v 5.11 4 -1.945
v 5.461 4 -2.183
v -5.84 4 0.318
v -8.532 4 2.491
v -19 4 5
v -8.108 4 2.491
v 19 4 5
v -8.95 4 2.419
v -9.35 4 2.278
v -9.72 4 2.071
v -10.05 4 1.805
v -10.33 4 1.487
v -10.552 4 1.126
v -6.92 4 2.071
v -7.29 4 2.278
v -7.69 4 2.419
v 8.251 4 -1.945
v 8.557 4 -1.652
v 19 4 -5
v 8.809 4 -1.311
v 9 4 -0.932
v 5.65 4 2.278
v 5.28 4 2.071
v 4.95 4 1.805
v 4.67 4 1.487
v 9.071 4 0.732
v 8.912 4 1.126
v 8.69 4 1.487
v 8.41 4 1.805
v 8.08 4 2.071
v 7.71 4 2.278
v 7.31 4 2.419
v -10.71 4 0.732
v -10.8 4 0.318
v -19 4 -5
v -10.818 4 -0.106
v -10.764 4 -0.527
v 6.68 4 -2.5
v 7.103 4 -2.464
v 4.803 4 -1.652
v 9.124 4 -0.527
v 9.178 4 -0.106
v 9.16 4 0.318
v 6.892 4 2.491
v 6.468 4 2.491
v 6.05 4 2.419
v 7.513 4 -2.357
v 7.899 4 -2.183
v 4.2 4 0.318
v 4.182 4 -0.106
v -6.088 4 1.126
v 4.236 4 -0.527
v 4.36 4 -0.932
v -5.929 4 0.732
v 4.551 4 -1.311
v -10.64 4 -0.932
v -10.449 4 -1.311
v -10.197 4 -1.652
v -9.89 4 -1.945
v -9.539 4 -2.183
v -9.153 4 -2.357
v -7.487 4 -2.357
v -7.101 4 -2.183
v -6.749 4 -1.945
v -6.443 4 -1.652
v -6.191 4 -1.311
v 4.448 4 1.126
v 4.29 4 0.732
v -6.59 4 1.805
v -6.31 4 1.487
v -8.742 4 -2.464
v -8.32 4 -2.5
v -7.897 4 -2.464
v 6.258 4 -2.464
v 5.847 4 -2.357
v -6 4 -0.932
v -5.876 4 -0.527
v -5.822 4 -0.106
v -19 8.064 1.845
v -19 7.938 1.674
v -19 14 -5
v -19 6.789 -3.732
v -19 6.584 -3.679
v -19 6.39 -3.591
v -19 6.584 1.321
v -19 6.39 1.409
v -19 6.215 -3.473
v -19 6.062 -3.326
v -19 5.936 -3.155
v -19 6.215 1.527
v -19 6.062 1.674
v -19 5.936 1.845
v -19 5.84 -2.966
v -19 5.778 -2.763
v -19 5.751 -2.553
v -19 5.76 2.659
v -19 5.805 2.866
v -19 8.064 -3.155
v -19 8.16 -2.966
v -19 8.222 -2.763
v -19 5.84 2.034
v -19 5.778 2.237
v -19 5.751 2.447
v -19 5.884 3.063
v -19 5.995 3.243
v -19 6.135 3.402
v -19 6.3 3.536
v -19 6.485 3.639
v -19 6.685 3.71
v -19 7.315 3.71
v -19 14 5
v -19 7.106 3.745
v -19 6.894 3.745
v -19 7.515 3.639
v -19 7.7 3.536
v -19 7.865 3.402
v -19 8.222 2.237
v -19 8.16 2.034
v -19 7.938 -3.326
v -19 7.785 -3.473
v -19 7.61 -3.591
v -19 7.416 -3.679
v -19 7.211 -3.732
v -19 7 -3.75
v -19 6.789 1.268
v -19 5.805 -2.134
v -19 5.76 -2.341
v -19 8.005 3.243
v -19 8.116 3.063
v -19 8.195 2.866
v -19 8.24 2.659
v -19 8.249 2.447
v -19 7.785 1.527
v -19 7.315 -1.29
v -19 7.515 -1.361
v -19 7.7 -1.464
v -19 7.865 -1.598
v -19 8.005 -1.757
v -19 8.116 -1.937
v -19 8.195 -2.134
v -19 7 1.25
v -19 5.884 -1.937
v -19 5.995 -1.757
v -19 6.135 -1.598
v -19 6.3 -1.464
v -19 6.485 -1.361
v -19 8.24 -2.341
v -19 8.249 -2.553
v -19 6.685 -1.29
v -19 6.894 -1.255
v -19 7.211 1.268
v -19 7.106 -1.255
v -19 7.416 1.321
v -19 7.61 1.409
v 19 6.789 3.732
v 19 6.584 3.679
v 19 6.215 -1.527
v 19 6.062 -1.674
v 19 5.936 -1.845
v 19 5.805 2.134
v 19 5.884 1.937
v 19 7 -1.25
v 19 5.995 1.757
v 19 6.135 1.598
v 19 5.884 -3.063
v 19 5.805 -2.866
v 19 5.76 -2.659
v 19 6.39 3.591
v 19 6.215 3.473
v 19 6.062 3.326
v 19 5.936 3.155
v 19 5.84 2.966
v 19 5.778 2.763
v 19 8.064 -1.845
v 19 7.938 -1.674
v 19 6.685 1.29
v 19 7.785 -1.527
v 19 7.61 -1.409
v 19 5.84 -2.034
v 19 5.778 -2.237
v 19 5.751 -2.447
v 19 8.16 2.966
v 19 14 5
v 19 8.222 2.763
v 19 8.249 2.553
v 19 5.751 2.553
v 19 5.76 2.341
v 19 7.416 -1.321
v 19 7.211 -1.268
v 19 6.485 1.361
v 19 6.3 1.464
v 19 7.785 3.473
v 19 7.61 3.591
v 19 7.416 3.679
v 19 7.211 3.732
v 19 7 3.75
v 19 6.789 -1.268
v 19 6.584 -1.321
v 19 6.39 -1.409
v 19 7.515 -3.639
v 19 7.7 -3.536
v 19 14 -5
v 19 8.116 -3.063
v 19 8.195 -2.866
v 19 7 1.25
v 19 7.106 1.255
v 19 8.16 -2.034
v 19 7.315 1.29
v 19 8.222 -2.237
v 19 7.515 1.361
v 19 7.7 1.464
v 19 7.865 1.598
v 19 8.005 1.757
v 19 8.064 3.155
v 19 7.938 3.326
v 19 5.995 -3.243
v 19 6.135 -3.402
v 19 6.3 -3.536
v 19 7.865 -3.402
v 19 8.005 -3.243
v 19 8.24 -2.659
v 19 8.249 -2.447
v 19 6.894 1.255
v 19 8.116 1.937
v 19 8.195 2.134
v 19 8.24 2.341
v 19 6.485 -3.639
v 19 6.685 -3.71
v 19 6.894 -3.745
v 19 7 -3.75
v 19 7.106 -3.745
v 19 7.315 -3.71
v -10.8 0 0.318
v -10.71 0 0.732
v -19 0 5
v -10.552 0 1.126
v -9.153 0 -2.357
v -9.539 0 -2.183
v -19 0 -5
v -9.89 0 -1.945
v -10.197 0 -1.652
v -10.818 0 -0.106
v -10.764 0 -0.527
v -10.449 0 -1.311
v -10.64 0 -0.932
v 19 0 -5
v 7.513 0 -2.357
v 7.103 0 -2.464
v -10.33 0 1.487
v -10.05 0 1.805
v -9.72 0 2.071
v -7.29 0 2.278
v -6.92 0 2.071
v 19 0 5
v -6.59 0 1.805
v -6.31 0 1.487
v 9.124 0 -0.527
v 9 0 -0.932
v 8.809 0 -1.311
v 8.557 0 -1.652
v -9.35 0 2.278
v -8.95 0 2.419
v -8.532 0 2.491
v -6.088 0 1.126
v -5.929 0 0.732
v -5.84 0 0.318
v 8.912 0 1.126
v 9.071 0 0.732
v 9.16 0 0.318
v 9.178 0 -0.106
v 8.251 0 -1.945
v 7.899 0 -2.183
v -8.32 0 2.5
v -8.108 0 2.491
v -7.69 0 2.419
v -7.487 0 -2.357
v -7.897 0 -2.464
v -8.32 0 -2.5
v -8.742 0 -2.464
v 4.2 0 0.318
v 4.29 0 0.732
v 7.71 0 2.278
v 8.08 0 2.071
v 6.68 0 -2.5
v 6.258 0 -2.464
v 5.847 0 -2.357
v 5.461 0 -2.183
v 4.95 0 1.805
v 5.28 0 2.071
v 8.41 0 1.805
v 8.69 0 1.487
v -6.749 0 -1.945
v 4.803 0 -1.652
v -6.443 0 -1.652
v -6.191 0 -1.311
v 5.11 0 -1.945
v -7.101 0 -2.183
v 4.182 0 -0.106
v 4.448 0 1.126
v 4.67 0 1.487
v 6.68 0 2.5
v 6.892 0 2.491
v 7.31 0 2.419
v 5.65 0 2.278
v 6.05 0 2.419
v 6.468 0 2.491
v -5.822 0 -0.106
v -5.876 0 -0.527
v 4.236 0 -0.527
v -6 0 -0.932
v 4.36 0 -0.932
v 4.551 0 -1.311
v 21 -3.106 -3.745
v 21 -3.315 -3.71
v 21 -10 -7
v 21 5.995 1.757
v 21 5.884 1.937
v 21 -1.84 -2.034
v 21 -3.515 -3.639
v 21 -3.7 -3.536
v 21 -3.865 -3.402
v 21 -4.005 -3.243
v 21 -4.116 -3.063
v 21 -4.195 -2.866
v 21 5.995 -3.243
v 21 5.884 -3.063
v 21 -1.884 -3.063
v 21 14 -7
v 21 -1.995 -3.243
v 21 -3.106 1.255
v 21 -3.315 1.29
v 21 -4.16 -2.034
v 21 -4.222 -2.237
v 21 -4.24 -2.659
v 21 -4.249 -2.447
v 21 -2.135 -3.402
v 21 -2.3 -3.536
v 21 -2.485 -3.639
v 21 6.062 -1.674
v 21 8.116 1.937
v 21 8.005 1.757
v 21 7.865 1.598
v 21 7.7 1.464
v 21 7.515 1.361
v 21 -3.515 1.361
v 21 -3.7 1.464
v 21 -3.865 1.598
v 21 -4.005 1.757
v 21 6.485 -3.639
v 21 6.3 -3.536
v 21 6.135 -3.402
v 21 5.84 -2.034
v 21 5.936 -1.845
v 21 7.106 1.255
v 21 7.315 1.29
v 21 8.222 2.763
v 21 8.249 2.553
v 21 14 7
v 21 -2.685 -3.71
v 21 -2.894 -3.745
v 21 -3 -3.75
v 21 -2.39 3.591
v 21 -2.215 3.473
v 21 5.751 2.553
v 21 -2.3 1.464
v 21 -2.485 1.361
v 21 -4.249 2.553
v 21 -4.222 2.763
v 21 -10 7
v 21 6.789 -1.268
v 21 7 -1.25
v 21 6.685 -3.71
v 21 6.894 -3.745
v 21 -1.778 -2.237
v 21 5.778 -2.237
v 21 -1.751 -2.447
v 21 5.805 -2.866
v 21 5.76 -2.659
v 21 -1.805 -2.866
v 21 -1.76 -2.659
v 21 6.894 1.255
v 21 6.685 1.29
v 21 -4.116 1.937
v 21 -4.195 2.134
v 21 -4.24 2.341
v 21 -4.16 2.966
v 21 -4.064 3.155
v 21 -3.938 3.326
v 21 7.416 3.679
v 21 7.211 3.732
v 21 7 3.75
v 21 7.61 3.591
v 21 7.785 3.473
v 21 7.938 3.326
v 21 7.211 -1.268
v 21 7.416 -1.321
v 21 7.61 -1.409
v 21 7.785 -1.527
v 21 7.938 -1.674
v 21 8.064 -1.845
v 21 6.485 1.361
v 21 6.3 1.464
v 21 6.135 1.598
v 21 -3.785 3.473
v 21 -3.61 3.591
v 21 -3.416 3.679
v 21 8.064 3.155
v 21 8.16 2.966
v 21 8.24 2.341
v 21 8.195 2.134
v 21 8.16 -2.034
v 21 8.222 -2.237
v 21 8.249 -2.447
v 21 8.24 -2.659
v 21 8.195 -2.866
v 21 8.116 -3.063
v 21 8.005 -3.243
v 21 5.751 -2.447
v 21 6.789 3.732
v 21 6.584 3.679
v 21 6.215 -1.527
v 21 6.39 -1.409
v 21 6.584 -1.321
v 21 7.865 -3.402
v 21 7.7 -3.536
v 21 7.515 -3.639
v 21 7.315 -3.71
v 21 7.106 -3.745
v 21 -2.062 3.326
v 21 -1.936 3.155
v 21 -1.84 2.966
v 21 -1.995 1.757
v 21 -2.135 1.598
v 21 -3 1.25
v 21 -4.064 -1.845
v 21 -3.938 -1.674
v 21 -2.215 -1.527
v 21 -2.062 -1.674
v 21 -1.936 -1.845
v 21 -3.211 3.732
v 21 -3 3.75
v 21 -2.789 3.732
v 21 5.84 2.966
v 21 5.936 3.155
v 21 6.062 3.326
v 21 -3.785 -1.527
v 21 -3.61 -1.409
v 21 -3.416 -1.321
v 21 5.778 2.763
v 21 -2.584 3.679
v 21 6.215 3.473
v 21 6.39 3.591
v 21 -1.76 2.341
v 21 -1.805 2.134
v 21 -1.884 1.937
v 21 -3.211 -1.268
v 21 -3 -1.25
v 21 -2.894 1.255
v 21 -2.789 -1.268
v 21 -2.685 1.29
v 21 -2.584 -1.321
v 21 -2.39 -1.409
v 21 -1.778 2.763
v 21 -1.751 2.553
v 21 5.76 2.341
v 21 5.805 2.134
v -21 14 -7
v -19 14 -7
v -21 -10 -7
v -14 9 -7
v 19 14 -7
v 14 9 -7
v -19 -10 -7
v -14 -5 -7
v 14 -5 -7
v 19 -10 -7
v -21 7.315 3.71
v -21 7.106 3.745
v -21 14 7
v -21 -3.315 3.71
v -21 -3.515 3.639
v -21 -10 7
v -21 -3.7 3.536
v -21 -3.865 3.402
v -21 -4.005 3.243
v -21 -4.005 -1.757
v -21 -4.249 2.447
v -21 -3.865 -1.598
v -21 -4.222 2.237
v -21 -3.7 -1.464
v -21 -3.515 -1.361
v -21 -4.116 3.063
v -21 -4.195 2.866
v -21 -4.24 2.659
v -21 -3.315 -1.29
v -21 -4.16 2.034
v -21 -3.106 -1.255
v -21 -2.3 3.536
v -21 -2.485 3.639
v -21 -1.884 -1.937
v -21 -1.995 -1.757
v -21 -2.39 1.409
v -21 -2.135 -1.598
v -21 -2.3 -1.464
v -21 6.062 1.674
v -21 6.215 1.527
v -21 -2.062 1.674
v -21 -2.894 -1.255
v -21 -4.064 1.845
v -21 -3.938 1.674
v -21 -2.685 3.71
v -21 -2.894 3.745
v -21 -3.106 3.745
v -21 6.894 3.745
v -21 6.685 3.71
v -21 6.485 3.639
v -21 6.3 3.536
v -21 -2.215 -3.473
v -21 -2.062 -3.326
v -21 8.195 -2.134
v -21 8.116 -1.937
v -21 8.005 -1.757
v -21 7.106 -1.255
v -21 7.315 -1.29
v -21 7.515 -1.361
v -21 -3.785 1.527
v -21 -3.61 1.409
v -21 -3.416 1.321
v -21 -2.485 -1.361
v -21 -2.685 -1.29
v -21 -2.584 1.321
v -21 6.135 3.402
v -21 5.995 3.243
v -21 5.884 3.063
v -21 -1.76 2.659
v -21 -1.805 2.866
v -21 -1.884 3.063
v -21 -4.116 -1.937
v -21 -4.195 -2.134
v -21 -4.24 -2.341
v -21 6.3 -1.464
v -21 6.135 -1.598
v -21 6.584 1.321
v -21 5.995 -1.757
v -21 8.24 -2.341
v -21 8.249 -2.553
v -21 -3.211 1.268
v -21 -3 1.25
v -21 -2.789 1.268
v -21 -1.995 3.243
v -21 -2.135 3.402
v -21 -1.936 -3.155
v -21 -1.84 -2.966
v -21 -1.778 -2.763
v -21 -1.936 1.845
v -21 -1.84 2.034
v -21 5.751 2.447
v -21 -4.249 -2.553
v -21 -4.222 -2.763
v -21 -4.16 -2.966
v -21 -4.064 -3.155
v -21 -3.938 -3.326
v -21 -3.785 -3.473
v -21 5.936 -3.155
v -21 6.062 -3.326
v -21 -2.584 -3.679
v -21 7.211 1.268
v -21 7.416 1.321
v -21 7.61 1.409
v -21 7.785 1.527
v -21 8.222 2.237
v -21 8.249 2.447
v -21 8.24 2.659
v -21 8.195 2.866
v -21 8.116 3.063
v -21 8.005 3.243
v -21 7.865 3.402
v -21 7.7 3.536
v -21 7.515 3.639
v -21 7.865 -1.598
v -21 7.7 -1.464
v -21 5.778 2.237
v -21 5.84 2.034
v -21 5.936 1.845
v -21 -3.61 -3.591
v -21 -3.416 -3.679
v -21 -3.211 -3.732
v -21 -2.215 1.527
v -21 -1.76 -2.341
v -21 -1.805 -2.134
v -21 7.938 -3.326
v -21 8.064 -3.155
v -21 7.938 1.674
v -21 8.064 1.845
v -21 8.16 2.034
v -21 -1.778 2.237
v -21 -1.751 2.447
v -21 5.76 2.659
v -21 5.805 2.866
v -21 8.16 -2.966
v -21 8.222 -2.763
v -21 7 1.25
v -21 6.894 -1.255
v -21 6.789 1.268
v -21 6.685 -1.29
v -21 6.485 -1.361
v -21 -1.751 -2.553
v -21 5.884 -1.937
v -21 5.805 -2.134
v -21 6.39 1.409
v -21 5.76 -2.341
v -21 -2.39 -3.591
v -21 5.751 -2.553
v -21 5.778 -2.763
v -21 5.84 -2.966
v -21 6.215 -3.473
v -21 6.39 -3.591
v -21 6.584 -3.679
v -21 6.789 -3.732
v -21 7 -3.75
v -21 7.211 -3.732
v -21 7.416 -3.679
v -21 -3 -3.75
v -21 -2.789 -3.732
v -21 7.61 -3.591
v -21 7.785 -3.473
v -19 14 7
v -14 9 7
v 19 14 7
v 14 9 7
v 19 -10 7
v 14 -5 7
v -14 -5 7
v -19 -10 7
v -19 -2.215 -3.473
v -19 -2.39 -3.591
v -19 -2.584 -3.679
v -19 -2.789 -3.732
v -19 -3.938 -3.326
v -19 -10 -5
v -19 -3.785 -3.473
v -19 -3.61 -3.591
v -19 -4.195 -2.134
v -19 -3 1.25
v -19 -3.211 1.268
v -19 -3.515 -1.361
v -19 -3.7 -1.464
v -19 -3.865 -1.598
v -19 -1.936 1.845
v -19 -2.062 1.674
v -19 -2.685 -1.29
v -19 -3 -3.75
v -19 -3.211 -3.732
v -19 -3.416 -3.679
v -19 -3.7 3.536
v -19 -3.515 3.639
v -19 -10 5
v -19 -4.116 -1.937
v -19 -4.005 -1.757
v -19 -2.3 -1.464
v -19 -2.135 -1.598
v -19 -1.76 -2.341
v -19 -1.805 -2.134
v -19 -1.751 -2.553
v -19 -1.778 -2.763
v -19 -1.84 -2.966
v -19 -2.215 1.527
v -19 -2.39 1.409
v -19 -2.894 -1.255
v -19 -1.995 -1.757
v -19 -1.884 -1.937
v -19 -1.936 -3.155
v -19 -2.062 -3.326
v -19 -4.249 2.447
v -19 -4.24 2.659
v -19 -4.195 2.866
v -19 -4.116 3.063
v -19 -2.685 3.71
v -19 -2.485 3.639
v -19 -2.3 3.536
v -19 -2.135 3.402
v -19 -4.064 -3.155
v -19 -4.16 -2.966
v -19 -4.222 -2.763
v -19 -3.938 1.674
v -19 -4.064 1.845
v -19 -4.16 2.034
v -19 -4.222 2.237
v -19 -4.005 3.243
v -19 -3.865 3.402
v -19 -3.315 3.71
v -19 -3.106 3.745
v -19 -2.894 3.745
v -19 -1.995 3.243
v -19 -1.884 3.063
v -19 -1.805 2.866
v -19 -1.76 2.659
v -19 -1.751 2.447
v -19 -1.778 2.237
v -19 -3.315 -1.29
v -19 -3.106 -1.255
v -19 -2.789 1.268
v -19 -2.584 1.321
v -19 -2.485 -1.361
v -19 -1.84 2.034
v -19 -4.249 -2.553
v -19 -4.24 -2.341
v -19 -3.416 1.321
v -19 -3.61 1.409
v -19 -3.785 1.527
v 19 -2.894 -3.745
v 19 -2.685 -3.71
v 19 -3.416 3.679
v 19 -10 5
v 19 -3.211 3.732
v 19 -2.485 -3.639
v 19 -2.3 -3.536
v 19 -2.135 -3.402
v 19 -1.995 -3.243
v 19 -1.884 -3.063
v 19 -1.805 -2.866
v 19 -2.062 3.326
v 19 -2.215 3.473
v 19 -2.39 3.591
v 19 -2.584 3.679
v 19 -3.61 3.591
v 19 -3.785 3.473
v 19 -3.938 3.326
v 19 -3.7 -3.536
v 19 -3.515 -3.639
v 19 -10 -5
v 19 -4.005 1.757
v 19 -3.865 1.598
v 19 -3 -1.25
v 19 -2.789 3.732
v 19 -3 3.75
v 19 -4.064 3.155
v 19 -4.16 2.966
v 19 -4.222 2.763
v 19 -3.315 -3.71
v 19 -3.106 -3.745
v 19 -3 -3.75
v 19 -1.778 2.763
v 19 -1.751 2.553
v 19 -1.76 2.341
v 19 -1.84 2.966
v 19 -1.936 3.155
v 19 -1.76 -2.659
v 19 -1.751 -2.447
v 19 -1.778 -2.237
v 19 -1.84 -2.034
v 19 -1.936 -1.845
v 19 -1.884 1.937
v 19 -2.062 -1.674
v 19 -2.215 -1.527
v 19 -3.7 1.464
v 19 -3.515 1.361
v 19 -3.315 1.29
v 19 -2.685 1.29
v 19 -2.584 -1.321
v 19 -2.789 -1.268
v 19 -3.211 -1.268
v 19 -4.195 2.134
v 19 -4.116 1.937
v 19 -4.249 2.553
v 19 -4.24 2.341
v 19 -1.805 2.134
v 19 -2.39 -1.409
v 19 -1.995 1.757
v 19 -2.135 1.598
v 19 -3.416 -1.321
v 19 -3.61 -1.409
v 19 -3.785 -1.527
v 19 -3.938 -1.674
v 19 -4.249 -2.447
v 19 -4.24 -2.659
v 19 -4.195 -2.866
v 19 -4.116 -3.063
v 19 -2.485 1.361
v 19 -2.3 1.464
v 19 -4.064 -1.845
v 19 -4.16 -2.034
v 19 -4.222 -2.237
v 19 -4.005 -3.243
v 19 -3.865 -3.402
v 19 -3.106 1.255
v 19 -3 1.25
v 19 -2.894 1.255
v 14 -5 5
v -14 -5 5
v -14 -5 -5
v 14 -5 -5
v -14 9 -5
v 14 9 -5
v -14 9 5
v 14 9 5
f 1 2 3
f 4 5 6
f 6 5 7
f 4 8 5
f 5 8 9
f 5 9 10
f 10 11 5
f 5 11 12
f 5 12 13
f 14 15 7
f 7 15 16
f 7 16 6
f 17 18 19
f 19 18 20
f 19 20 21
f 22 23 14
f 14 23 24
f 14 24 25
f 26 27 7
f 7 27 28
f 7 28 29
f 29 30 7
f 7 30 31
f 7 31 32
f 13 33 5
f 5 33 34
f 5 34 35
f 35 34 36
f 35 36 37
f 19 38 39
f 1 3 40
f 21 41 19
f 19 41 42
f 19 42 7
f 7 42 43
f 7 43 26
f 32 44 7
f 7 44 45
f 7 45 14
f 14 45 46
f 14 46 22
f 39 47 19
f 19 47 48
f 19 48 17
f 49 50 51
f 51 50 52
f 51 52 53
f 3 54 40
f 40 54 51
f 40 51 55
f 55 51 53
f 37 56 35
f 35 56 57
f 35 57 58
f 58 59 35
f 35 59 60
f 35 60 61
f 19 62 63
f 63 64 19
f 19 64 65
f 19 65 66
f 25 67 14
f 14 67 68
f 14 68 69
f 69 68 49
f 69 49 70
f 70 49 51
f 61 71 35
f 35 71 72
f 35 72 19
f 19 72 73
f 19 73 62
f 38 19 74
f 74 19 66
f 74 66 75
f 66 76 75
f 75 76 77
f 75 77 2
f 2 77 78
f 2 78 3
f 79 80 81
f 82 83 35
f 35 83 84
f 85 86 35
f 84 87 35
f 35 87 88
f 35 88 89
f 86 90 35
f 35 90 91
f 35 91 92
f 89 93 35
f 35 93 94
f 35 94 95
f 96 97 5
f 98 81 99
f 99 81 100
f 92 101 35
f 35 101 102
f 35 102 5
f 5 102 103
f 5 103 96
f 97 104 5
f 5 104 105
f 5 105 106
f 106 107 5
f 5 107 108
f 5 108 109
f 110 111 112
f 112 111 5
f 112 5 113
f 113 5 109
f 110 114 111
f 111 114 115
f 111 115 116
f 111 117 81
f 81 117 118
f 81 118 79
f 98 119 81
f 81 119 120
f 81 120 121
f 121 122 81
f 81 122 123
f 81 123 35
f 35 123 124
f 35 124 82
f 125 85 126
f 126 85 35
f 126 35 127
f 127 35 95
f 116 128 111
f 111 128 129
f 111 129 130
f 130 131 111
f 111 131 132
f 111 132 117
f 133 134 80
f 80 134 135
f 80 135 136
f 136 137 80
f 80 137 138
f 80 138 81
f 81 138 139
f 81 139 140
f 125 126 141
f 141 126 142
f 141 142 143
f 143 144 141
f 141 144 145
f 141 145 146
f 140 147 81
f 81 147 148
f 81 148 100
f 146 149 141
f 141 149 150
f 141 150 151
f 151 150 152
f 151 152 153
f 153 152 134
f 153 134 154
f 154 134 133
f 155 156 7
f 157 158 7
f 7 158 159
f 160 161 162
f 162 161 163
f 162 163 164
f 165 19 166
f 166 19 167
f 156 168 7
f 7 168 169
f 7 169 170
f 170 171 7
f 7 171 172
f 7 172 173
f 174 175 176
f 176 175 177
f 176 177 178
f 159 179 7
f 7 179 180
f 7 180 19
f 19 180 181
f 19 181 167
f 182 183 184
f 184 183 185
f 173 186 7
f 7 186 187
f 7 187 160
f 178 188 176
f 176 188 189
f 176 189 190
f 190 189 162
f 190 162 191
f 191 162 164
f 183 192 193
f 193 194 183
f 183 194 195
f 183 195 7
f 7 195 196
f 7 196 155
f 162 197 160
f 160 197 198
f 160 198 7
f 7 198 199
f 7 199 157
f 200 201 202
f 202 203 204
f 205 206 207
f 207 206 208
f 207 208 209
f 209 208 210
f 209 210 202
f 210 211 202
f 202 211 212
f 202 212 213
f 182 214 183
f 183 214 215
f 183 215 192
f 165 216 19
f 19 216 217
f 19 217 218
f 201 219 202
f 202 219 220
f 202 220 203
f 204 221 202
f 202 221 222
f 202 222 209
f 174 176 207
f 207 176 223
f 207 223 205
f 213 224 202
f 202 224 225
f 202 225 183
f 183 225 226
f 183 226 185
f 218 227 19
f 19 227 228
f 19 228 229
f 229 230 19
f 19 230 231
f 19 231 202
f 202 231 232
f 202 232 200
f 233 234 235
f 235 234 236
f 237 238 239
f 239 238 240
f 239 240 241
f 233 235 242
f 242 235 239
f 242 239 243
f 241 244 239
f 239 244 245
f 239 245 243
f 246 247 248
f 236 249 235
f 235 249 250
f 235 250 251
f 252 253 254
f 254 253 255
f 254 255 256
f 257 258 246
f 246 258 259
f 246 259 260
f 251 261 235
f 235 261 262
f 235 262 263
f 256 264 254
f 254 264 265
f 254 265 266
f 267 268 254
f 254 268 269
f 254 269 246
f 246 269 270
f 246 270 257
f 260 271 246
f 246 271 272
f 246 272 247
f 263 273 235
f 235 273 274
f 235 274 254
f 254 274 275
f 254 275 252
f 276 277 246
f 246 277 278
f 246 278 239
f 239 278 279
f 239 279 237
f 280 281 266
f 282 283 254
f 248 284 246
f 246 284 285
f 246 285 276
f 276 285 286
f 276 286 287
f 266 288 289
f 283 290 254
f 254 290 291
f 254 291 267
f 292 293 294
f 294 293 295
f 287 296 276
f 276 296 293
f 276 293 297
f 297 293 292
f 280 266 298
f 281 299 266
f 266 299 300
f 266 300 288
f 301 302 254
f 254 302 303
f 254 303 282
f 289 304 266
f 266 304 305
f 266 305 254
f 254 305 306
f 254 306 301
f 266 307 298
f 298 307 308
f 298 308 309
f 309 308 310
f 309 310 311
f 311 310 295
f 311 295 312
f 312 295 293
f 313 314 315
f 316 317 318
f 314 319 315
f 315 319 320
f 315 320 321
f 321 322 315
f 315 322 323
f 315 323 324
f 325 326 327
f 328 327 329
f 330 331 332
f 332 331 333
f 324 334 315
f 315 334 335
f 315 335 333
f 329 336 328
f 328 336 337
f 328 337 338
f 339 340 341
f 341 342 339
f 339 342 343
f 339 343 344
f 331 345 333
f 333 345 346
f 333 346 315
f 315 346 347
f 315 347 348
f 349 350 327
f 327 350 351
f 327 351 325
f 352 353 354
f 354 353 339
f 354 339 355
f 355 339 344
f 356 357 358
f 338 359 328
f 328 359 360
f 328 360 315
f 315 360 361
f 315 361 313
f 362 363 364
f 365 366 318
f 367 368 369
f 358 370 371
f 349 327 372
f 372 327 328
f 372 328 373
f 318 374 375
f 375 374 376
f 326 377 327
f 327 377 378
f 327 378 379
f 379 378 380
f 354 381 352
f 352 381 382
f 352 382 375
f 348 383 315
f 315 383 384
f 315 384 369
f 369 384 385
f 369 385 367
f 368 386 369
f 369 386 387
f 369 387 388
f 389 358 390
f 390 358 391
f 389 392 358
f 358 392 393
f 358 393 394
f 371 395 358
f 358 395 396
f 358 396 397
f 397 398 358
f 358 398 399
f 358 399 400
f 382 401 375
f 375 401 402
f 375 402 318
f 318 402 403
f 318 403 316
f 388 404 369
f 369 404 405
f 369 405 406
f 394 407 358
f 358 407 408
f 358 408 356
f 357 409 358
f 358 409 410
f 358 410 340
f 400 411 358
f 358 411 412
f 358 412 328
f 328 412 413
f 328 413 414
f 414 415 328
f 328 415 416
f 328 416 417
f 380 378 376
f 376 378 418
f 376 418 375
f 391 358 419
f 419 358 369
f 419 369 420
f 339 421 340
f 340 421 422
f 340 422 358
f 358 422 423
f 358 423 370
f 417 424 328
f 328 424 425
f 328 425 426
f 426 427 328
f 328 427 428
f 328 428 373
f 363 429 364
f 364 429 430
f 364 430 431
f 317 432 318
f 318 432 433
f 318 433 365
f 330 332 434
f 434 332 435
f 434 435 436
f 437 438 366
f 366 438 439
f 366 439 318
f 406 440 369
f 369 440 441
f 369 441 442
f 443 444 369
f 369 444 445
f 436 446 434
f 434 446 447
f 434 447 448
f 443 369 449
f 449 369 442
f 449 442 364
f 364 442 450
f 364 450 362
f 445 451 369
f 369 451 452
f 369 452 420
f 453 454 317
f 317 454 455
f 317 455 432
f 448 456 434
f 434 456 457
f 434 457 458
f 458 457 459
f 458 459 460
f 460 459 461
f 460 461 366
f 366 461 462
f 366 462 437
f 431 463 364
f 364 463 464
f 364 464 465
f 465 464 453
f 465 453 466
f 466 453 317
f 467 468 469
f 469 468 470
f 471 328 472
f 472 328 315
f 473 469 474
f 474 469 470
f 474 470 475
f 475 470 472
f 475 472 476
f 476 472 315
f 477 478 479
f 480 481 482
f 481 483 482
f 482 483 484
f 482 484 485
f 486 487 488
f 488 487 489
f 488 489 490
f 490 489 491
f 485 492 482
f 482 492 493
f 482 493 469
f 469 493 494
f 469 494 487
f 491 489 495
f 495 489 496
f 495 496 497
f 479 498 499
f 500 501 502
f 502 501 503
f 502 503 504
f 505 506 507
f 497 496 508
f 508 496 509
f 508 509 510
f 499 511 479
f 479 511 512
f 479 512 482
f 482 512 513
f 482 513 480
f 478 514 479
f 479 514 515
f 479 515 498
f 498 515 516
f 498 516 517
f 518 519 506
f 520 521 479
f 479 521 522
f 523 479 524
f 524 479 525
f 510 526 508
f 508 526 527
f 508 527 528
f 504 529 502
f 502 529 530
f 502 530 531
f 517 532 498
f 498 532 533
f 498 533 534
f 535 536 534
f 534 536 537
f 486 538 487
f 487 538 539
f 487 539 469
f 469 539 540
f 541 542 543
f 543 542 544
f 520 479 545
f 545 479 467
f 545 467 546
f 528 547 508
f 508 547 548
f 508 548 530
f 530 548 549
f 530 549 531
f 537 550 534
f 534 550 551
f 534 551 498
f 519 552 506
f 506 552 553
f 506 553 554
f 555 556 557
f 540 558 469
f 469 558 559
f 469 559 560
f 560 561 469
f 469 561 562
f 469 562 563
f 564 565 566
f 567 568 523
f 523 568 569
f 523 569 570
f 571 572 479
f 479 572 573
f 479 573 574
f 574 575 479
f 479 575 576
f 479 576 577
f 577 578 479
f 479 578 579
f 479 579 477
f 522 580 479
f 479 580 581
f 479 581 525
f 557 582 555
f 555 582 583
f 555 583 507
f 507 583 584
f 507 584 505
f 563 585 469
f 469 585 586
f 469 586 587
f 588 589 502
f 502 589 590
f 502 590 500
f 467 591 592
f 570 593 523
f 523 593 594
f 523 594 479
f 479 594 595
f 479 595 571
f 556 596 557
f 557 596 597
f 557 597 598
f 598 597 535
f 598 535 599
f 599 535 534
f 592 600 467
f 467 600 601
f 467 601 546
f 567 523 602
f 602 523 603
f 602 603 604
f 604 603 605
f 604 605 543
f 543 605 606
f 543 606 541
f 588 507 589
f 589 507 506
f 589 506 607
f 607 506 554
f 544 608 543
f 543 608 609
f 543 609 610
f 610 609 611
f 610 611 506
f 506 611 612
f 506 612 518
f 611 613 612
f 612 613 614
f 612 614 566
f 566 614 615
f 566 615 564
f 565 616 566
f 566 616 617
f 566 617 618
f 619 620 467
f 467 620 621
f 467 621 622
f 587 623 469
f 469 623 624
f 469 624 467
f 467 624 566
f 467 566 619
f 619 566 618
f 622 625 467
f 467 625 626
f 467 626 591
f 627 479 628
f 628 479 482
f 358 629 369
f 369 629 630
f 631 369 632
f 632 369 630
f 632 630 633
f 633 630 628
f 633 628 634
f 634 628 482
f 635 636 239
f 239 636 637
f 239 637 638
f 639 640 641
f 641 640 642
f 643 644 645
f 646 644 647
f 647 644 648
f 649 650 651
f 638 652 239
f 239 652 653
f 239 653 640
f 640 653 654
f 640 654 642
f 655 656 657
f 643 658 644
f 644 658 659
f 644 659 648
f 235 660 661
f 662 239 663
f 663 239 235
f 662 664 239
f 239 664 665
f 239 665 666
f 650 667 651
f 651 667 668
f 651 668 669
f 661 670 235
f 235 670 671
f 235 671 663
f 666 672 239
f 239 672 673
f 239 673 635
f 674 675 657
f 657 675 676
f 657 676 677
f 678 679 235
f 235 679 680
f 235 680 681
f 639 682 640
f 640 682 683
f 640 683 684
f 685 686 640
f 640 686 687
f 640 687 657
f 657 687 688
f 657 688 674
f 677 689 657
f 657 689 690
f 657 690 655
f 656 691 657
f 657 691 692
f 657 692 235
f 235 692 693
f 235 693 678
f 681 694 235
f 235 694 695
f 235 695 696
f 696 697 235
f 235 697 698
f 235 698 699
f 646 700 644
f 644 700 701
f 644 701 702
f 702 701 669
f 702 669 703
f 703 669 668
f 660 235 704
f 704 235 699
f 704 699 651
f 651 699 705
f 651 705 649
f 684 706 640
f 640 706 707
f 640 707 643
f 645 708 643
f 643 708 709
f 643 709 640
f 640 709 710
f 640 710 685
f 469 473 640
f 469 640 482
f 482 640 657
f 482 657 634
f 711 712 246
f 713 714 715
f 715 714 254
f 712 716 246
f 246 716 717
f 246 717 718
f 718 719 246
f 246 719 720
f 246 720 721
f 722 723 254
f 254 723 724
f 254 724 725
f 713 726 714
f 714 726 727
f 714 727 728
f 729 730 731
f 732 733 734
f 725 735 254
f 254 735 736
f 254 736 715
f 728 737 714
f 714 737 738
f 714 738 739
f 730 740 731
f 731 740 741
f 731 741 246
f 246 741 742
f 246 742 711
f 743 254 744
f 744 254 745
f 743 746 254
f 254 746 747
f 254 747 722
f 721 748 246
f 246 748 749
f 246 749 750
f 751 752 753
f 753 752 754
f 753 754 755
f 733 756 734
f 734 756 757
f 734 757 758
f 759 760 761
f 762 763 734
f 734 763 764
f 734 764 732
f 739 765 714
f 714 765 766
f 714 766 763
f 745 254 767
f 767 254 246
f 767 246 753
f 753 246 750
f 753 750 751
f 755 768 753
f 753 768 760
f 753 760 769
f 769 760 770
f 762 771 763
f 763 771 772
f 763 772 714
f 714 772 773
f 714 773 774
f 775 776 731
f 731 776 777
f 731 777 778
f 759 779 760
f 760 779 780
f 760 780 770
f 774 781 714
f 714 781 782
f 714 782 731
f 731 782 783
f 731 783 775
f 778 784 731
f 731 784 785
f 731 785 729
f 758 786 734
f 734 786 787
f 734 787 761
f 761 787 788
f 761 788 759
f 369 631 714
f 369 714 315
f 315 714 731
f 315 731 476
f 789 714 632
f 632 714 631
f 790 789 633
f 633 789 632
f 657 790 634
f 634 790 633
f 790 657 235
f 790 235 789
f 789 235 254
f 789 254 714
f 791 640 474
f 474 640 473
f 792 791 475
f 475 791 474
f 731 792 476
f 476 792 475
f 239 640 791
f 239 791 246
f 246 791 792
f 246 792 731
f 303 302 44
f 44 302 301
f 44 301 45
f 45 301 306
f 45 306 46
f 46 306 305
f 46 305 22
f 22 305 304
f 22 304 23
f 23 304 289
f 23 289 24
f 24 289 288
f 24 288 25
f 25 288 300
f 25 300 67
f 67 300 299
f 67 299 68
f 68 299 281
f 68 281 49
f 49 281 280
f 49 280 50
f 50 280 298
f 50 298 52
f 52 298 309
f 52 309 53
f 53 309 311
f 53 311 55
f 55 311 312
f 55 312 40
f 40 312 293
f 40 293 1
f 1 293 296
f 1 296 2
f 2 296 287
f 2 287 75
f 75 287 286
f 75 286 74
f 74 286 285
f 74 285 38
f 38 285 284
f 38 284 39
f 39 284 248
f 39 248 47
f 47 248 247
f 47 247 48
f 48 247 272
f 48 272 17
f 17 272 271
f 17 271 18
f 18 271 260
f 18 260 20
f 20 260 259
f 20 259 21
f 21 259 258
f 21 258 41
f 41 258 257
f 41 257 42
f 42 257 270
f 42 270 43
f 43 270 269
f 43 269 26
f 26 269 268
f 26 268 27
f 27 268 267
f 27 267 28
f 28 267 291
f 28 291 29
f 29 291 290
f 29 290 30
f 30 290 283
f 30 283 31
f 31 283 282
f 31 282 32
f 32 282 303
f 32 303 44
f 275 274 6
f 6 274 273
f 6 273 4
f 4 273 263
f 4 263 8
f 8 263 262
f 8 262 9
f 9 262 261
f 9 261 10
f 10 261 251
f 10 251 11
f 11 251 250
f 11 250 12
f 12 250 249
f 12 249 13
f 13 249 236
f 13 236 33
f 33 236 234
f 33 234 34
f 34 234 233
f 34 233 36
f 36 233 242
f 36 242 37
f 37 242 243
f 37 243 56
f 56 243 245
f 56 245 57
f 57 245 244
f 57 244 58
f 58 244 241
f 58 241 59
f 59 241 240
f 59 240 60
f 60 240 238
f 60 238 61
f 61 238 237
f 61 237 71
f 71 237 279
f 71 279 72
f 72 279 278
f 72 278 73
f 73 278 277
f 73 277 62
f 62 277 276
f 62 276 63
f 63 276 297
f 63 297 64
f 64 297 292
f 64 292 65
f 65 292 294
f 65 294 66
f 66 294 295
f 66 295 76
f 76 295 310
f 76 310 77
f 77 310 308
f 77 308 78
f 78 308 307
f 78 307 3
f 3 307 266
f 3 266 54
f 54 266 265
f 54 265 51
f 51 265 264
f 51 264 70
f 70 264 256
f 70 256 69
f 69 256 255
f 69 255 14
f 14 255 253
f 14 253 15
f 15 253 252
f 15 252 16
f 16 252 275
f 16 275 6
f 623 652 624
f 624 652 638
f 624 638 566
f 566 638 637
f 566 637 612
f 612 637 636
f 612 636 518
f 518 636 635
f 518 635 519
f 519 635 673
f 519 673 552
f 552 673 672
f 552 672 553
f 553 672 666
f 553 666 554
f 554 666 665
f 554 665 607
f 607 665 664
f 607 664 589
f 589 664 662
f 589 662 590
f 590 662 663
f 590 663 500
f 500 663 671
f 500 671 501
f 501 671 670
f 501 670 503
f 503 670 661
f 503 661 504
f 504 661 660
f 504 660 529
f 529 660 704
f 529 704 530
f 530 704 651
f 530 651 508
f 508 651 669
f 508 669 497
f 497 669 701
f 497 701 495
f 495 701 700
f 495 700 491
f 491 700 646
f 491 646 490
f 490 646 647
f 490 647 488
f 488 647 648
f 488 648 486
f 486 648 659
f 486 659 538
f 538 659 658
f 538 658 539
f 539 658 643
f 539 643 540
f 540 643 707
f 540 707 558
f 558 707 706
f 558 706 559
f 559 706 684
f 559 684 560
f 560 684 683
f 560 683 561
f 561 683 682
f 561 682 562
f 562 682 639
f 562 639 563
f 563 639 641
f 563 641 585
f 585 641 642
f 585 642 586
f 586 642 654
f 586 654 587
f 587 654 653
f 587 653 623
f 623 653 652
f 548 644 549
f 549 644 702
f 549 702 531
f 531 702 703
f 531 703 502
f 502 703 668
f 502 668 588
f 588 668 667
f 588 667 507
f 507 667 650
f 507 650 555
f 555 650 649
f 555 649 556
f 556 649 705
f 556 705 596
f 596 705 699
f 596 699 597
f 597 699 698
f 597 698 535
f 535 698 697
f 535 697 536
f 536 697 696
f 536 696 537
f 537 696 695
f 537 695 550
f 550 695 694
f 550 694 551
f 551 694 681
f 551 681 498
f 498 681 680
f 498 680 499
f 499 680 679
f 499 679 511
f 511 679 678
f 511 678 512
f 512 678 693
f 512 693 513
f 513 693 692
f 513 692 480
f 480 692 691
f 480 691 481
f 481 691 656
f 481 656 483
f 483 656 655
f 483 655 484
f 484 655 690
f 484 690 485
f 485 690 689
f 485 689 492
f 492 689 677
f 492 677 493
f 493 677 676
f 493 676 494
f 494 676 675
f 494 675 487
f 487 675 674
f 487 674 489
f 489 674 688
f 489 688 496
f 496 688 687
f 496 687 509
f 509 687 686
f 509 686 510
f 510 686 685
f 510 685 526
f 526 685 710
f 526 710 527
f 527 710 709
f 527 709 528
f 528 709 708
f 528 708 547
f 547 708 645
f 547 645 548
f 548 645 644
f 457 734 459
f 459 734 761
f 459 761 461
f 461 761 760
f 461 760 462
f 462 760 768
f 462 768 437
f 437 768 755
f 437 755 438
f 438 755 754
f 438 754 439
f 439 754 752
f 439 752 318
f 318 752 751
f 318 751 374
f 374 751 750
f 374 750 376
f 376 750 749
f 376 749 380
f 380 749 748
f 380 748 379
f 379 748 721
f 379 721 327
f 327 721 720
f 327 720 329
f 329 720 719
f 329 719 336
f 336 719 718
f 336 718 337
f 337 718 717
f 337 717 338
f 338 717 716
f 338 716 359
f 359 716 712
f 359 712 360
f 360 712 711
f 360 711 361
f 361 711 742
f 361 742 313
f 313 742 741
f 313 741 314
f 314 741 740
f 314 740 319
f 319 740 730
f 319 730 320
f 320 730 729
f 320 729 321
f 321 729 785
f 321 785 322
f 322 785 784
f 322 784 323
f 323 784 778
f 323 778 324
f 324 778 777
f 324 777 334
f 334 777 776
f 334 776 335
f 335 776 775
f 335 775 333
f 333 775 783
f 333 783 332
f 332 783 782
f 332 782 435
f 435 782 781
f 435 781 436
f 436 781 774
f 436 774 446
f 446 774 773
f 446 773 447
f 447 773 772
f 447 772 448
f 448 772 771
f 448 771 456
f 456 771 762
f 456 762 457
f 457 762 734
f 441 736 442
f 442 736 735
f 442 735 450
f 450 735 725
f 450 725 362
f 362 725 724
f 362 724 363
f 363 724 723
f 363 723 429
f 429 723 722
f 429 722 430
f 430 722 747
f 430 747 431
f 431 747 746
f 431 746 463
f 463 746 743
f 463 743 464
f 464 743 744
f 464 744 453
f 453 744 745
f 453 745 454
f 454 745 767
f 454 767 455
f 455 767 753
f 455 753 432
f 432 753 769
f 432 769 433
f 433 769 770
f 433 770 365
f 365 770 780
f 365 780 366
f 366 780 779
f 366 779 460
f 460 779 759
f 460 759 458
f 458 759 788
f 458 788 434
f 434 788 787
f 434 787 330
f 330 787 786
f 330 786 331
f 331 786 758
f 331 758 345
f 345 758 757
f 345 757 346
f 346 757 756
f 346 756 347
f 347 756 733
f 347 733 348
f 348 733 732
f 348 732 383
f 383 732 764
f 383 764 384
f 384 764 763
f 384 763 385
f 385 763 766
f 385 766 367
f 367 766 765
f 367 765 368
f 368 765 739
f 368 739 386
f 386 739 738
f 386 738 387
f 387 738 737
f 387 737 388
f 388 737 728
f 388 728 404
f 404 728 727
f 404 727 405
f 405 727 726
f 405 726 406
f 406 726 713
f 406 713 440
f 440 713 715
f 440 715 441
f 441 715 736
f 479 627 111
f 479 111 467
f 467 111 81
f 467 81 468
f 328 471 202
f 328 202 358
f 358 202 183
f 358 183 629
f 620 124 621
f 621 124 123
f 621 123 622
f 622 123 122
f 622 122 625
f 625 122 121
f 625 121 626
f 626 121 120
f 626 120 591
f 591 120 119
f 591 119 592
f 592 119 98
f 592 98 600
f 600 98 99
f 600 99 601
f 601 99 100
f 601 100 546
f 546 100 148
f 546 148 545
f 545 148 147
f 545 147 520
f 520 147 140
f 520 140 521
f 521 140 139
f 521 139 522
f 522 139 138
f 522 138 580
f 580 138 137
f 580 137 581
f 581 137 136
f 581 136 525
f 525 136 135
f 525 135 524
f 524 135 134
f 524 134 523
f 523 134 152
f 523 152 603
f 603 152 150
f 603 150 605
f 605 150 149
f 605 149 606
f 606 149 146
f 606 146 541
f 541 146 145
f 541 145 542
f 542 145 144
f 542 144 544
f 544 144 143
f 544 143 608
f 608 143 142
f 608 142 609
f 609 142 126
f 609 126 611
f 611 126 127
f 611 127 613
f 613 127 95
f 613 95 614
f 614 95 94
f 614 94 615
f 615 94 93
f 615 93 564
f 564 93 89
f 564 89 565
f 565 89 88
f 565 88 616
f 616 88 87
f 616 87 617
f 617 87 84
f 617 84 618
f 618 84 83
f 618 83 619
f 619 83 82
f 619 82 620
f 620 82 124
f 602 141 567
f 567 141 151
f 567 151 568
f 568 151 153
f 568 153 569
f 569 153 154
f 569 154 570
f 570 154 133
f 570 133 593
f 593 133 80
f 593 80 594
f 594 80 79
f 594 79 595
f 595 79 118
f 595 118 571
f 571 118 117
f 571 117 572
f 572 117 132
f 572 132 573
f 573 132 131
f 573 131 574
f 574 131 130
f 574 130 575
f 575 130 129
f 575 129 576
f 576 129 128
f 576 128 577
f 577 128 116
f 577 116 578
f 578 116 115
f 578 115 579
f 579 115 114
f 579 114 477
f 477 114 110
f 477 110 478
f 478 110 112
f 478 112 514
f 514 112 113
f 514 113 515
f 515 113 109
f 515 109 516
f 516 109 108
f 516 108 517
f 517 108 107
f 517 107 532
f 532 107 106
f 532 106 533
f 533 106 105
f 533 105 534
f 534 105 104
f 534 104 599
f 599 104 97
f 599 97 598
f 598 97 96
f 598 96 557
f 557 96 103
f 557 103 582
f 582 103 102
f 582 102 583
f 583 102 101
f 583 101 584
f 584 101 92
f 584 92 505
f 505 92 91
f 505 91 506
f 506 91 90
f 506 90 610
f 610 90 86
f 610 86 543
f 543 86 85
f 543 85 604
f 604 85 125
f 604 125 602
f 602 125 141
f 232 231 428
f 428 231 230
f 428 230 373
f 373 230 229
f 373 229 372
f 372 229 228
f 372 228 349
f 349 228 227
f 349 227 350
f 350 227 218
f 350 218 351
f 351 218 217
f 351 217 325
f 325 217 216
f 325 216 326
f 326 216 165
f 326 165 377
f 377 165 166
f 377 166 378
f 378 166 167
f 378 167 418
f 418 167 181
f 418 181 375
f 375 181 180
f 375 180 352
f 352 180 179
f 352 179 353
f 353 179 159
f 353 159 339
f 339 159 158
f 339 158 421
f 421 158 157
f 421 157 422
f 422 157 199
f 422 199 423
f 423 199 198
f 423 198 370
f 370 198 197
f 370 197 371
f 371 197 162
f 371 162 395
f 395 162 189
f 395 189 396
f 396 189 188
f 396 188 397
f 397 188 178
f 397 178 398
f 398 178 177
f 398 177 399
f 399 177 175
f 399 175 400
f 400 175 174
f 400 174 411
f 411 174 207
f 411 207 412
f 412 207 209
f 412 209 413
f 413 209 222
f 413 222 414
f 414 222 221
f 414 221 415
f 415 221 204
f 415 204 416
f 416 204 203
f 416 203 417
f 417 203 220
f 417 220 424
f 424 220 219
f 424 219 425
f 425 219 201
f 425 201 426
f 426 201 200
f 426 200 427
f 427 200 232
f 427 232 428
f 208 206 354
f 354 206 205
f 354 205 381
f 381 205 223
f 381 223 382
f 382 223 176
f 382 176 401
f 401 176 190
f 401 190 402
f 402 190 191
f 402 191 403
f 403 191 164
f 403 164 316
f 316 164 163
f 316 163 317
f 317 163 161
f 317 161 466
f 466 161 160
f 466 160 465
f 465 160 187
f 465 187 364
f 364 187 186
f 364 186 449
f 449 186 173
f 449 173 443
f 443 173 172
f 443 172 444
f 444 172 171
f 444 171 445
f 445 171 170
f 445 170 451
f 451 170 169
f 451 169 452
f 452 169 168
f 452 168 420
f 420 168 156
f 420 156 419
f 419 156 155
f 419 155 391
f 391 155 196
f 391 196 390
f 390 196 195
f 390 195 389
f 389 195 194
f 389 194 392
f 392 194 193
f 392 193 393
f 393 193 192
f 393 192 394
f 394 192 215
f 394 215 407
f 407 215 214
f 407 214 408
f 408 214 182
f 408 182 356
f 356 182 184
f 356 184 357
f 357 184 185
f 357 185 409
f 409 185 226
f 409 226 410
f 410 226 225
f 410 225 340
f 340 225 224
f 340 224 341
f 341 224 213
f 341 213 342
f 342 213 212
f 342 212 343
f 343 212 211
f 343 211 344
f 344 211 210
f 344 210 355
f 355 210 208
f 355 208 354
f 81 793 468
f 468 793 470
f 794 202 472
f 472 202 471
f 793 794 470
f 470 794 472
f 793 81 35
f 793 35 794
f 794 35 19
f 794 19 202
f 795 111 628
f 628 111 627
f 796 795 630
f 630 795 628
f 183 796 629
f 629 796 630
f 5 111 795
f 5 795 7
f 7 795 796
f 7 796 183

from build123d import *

# Parameters (mm, degrees)
SKETCH2_W               = 42
SKETCH2_H               = 14
BOSS_EXTRUDE1_DEPTH     = 4
SKETCH3_W               = 2
SKETCH3_H               = 14
BOSS_EXTRUDE2_DEPTH     = 10
BOSS_EXTRUDE3_DEPTH     = 2
SKETCH5_R               = 2.5
CUT_EXTRUDE1_DEPTH      = 11
CUT_EXTRUDE1_DEPTH_BACK = 5
SKETCH6_R               = 1.25
CUT_EXTRUDE2_DEPTH      = 2
SKETCH7_W               = 2
SKETCH7_H               = 14
BOSS_EXTRUDE4_DEPTH     = 10
SKETCH8_R               = 1.25
CUT_EXTRUDE3_DEPTH      = 10
BOSS_EXTRUDE5_DEPTH     = 2


with BuildPart() as part:
    # Sketch2 → Boss-Extrude1 (new body)
    with BuildSketch(Plane(origin=(0, 0, 0), x_dir=(1, 0, 0), z_dir=(0, 1, 0))):
        Rectangle(SKETCH2_W, SKETCH2_H)
    extrude(amount=BOSS_EXTRUDE1_DEPTH)

    # Sketch3 → Boss-Extrude2 (add)
    with BuildSketch(Plane.XZ):
        with Locations((-20, 0)):
            Rectangle(SKETCH3_W, SKETCH3_H)
        with Locations((20, 0)):
            Rectangle(SKETCH3_W, SKETCH3_H)
    extrude(amount=BOSS_EXTRUDE2_DEPTH)

    # Sketch4 → Boss-Extrude3 (add)
    with BuildSketch(Plane.XY.offset(7)):
        Polygon((-14, -5), (14, -5), (19, -10), (19, 0), (-19, 0), (-19, -10), align=None)
    boss_extrude3 = extrude(amount=-BOSS_EXTRUDE3_DEPTH)

    # Mirror1: Boss-Extrude3 across plane
    add(boss_extrude3.mirror(Plane.XY))

    # Sketch5 → Cut-Extrude1 (cut, two sides)
    with BuildSketch(Plane.XZ) as cut_extrude1_sk:
        with Locations((-8.319906625, 0)):
            Circle(SKETCH5_R)
        with Locations((6.680093375, 0)):
            Circle(SKETCH5_R)
    extrude(amount=CUT_EXTRUDE1_DEPTH, mode=Mode.SUBTRACT)
    extrude(cut_extrude1_sk.sketch, amount=-CUT_EXTRUDE1_DEPTH_BACK, mode=Mode.SUBTRACT)

    # Sketch6 → Cut-Extrude2 (cut)
    with BuildSketch(Plane(origin=(-19, 0, 0), x_dir=(0, 0, -1), z_dir=(1, 0, 0))):
        with Locations((-2.5, -3)):
            Circle(SKETCH6_R)
        with Locations((2.5, -3)):
            Circle(SKETCH6_R)
    cut_extrude2 = extrude(amount=-CUT_EXTRUDE2_DEPTH, mode=Mode.SUBTRACT)

    # Mirror2: Cut-Extrude2 across plane
    add(cut_extrude2.mirror(Plane(origin=(0, 0, 0), x_dir=(0, 0, 1), z_dir=(1, 0, 0))), mode=Mode.SUBTRACT)

    # Sketch7 → Boss-Extrude4 (add)
    with BuildSketch(Plane(origin=(0, 4, 0), x_dir=(1, 0, 0), z_dir=(0, 1, 0))):
        with Locations((-20, 0)):
            Rectangle(SKETCH7_W, SKETCH7_H)
        with Locations((20, 0)):
            Rectangle(SKETCH7_W, SKETCH7_H)
    extrude(amount=BOSS_EXTRUDE4_DEPTH)

    # Sketch8 → Cut-Extrude3 (cut)
    with BuildSketch(Plane(origin=(-19, 0, 0), x_dir=(0, 0, -1), z_dir=(1, 0, 0))):
        with Locations((-2.5, 7)):
            Circle(SKETCH8_R)
        with Locations((2.5, 7)):
            Circle(SKETCH8_R)
    cut_extrude3 = extrude(amount=-CUT_EXTRUDE3_DEPTH, mode=Mode.SUBTRACT)

    # Mirror3: Cut-Extrude3 across plane
    add(cut_extrude3.mirror(Plane(origin=(0, 0, 0), x_dir=(0, 0, 1), z_dir=(1, 0, 0))), mode=Mode.SUBTRACT)

    # Sketch9 → Boss-Extrude5 (add)
    with BuildSketch(Plane(origin=(0, 0, -7), x_dir=(-1, 0, 0), z_dir=(0, 0, -1))):
        Polygon((19, 14), (19, 4), (-19, 4), (-19, 14), (-14, 9), (14, 9), align=None)
    boss_extrude5 = extrude(amount=-BOSS_EXTRUDE5_DEPTH)

    # Mirror4: Boss-Extrude5 across plane
    add(boss_extrude5.mirror(Plane.XY))


solid = part.part
